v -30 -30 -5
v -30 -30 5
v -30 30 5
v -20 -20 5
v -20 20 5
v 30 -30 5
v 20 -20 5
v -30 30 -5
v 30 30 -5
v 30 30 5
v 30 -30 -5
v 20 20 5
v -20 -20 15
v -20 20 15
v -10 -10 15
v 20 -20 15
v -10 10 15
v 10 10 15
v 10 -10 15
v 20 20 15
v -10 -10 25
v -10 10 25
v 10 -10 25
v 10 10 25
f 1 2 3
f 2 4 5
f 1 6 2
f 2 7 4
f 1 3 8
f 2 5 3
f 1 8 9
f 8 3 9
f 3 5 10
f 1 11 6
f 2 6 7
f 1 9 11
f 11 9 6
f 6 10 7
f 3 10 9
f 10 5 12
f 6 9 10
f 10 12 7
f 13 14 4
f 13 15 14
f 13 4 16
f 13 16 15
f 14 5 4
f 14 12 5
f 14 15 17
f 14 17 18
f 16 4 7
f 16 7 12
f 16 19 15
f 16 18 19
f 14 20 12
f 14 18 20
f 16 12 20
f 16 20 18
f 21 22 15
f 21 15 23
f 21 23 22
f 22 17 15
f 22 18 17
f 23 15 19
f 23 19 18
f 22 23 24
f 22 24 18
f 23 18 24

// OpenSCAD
union() {
    cube([60, 60, 10], center = true);
    translate([0, 0, 10]) cube([40, 40, 10], center = true);
    translate([0, 0, 20]) cube([20, 20, 10], center = true);
}
